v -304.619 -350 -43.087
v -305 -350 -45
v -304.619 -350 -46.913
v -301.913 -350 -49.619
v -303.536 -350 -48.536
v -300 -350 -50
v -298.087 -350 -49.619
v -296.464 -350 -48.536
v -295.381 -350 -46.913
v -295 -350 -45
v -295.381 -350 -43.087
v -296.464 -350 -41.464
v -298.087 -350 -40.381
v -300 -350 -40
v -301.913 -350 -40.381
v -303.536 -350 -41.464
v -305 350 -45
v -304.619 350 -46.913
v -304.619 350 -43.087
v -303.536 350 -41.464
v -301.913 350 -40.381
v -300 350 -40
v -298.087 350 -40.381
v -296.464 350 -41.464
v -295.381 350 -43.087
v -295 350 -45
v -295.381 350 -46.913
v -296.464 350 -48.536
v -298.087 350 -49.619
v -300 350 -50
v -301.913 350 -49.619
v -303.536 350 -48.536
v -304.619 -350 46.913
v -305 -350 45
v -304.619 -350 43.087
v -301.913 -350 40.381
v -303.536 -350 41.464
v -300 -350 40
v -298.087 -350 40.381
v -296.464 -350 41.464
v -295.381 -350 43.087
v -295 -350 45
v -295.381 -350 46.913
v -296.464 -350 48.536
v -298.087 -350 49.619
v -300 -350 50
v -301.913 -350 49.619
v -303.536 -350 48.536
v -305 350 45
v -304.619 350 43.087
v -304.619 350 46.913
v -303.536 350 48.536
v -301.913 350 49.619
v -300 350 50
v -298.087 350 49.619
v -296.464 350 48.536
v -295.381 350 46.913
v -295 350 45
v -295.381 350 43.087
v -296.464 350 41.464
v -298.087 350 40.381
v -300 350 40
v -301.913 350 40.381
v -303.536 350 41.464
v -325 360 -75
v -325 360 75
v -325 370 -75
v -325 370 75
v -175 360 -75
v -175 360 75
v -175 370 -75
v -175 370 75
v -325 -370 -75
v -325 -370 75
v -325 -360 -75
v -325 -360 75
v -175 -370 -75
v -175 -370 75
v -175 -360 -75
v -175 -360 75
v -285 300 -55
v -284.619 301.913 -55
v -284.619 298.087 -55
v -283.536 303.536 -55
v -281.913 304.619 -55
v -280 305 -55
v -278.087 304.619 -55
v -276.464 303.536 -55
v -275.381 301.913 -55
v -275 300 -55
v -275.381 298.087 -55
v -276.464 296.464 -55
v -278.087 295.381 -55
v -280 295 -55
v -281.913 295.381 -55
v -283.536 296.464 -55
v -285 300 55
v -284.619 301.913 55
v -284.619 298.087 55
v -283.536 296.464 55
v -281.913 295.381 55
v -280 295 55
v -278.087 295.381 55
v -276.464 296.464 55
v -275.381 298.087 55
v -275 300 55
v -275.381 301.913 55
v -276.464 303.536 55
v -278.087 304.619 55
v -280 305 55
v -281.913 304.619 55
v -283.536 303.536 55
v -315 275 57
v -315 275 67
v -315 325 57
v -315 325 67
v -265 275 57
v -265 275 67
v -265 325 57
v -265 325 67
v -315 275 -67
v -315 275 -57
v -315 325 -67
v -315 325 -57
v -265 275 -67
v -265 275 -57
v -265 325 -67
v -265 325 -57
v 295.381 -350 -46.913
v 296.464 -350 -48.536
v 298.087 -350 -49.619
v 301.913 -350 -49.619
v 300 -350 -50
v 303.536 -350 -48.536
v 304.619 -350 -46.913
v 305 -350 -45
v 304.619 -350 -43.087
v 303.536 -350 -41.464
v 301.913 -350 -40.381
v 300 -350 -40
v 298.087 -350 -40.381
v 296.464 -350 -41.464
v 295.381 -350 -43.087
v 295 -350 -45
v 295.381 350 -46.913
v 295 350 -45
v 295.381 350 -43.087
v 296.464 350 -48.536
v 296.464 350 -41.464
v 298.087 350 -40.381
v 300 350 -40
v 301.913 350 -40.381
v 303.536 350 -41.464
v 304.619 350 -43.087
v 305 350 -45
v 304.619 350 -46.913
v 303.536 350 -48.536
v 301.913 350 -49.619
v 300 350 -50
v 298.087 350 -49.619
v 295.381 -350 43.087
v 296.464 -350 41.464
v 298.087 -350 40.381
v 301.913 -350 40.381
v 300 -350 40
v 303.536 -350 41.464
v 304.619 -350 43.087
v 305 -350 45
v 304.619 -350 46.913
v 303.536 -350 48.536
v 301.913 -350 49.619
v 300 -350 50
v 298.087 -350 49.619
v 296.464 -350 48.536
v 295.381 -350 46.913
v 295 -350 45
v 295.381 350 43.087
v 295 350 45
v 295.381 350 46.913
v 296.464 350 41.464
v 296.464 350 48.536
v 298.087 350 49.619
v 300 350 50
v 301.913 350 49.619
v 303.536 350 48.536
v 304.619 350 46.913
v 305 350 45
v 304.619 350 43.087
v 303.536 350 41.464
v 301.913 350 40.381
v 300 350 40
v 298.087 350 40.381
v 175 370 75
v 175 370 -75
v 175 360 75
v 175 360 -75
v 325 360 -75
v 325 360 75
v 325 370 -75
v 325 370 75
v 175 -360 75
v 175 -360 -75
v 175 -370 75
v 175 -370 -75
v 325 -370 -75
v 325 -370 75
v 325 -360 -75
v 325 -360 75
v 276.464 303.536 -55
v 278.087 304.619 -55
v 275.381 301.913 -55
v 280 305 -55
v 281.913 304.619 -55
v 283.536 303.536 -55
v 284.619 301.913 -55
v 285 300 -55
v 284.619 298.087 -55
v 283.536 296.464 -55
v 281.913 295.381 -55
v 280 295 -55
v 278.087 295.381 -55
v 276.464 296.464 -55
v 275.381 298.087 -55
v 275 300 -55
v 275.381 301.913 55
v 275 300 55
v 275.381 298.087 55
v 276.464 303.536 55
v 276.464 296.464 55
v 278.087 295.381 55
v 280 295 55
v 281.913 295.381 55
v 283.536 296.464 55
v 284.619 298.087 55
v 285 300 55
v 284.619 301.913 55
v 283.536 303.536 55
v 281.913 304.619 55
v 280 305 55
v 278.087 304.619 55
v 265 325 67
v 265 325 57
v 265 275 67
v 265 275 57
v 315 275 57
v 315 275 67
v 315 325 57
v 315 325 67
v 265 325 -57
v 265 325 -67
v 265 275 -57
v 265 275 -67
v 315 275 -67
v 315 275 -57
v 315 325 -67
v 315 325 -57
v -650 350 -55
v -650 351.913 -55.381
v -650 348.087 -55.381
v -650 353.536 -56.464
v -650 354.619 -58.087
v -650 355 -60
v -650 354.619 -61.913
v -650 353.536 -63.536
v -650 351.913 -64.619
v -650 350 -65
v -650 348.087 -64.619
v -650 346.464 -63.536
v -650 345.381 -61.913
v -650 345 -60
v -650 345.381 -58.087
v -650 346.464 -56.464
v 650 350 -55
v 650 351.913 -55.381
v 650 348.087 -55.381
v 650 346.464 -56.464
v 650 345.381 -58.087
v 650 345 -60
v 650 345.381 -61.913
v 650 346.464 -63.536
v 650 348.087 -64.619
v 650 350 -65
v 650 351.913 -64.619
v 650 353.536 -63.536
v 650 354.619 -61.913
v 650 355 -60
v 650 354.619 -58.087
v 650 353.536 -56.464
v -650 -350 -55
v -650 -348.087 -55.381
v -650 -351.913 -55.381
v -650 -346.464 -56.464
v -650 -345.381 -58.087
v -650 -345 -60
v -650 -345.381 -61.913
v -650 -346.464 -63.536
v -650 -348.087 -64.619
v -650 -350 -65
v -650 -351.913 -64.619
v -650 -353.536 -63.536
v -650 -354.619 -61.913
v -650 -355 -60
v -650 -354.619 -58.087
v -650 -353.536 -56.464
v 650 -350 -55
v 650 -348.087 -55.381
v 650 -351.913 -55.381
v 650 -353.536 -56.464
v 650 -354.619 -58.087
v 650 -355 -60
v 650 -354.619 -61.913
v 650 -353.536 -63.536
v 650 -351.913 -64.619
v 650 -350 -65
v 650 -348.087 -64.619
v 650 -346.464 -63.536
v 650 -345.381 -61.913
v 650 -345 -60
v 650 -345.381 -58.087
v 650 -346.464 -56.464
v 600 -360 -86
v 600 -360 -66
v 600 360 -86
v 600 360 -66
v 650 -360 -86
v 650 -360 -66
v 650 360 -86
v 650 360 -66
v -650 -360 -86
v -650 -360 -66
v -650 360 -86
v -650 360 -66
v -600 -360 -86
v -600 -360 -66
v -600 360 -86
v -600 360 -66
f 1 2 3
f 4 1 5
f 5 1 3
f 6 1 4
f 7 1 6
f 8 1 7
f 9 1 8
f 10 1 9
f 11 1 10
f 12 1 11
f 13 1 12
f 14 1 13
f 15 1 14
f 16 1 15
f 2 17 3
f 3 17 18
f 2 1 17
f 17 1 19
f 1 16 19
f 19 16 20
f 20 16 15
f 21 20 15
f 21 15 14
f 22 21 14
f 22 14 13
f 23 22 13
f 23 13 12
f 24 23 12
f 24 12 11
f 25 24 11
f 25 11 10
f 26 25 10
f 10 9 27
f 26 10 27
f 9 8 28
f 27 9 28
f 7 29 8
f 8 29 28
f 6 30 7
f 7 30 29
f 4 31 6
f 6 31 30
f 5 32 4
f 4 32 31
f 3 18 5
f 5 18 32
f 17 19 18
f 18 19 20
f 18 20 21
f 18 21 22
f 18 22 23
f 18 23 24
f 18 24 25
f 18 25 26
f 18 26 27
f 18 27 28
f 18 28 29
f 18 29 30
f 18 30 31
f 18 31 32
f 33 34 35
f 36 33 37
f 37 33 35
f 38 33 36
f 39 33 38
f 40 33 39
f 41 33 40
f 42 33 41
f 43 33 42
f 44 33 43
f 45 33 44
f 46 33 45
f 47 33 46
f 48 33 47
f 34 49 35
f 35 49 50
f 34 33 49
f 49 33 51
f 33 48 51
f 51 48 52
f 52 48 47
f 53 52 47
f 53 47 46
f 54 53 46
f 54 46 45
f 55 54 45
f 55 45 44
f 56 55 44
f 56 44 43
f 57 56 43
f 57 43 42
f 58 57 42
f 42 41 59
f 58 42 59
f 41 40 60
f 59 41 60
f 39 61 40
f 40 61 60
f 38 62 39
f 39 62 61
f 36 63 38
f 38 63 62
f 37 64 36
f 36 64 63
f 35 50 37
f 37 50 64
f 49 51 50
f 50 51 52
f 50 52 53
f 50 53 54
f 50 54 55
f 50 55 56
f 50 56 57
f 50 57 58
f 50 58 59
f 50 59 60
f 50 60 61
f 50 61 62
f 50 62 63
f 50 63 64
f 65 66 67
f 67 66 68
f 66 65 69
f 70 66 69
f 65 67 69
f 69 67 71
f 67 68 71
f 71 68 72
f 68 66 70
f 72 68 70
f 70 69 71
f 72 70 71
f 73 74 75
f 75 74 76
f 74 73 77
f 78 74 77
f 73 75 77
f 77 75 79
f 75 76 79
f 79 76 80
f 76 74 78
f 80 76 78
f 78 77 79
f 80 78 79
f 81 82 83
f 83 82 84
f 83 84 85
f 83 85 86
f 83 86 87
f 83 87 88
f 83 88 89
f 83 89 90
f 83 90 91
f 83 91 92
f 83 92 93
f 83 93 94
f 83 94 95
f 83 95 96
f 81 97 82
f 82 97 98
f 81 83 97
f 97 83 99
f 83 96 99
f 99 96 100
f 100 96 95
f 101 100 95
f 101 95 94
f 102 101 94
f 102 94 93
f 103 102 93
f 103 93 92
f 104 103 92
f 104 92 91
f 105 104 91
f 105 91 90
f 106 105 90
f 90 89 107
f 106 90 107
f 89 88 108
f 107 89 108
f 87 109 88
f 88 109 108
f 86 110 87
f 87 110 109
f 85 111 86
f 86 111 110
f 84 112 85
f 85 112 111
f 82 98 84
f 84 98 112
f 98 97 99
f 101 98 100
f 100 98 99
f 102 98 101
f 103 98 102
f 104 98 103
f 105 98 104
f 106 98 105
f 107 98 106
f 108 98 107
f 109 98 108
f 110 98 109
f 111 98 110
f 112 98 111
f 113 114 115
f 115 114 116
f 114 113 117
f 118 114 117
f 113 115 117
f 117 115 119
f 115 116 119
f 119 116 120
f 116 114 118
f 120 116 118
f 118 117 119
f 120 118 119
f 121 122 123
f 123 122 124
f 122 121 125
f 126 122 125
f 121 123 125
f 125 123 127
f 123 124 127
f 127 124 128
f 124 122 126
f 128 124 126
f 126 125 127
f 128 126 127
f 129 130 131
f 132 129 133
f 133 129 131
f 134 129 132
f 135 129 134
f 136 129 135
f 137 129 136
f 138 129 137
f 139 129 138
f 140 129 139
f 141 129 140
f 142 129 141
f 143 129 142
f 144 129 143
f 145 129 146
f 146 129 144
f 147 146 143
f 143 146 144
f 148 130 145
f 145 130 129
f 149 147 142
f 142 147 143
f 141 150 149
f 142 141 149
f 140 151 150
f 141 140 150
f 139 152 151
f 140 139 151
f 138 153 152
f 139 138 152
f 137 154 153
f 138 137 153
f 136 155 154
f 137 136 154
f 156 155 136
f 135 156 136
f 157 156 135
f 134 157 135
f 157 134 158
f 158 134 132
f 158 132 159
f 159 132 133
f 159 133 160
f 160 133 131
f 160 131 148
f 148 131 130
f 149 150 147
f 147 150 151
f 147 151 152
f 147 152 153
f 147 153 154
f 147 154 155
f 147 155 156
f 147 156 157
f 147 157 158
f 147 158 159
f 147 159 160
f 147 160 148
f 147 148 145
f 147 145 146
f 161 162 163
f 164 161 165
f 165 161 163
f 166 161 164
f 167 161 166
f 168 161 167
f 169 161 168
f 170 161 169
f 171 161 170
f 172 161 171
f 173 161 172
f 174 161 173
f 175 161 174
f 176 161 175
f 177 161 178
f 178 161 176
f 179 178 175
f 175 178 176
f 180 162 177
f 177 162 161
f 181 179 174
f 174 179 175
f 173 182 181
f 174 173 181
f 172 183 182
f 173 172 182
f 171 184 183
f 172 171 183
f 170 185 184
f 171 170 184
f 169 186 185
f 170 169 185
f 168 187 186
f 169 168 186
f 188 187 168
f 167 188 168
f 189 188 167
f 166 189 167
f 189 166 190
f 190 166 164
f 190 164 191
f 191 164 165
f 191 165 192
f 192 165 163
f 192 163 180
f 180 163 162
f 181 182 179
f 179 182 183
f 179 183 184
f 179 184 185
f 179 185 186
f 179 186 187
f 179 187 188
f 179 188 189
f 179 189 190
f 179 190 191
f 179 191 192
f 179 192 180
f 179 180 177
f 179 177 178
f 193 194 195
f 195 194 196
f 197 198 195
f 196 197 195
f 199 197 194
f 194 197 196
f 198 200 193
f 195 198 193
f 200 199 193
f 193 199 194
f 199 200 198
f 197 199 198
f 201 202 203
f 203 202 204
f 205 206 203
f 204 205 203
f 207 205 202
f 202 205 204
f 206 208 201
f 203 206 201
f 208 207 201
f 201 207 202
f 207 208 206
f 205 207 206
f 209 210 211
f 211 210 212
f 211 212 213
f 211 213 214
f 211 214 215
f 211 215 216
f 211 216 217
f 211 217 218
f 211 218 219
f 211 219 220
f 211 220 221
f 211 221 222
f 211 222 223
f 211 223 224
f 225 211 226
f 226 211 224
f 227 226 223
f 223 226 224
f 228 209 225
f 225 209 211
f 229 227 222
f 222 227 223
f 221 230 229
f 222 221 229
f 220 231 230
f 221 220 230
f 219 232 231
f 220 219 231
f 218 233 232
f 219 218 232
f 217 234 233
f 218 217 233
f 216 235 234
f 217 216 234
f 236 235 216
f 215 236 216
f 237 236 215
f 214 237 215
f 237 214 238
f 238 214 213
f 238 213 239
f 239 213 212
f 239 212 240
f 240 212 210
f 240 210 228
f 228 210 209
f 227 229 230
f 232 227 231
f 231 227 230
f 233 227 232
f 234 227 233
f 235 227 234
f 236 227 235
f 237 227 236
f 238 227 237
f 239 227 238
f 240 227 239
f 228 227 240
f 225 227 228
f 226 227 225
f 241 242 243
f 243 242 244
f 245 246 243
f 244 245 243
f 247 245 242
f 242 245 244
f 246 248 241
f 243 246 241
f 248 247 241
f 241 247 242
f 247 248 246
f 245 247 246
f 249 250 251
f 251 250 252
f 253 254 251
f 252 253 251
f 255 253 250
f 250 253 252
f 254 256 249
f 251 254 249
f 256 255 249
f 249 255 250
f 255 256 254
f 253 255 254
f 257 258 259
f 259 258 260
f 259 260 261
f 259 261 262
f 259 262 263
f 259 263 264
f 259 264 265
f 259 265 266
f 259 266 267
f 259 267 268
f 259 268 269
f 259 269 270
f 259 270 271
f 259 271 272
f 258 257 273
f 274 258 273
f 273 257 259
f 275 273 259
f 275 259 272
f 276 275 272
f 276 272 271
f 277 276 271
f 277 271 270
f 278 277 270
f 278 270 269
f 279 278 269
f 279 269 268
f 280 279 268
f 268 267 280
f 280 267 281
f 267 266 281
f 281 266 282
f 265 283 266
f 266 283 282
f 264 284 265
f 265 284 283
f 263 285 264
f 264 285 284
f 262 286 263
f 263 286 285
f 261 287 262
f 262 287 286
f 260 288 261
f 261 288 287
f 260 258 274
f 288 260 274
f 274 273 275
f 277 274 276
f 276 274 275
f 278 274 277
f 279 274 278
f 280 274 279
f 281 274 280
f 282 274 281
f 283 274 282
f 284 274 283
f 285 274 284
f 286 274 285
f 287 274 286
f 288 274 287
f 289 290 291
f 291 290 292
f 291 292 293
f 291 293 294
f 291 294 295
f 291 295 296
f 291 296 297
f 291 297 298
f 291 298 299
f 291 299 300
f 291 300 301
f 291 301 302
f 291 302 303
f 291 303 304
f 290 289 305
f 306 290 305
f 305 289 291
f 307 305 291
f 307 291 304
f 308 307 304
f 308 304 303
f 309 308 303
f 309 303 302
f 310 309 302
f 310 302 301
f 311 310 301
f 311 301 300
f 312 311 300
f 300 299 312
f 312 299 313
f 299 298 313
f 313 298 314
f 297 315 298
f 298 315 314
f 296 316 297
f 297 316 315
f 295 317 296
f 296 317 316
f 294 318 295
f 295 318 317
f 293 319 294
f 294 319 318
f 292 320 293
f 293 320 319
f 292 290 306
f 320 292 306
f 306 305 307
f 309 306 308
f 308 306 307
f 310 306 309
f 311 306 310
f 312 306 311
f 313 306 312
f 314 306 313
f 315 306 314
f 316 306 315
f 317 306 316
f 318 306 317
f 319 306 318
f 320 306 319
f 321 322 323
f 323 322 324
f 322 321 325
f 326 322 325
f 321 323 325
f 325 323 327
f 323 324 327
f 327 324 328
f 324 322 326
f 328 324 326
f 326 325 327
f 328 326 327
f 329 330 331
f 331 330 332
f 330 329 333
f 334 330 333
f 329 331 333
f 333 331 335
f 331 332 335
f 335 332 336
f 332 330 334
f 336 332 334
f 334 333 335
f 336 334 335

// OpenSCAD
xRailDiameter = 10;
xRailLength = 700;

yRailDiameter = 10;
yRailLength = 110;

zRailDiameter = 10;
zRailLength = 1300;

endBlockLength = 720;
endBlockWidth = 50;
endBlockHeight = 20;

module exampleFoamSize() {
	%cube([1200, 600, 60], center = true);
}

module xRailEndPlate() {
	translate([50,365,0]) {
			cube([150,10,150], center = true);
	}
	translate([50,-365,0]) {
			cube([150,10,150], center = true);
	}
}

module yRailEndPlate() {
	translate([10,300,62]) {
			cube([50,50,10], center = true);
	}
	translate([10,300,-62]) {
			cube([50,50,10], center = true);
	}
}

module xRail() {
	translate([-300,0,0]) {
		rotate(90, [1,0,0]) {
			translate([0,-45,0]) {
				cylinder(r = xRailDiameter / 2, h = xRailLength, center = true);
			}
			translate([0,45,0]) {
				cylinder(r = xRailDiameter / 2, h = xRailLength, center = true);
			}
		}
		xRailEndPlate();
		yRail();
	}
}

module yRail() {
	rotate(90, [0,0,1]) {
		translate([300,-20,0]) {
			cylinder(r = yRailDiameter / 2, h = yRailLength, center = true);
		}
	}
	yRailEndPlate();
}

module zRail() {
	rotate(90, [0,1,0]) {
		translate([60,350,0]) {
			cylinder(r = zRailDiameter / 2, h = zRailLength, center = true);
		}
	translate([60,-350,0]) {
			cylinder(r = zRailDiameter / 2, h = zRailLength, center = true);
		}
	}
}

module endBlocks() {
	translate([650-endBlockWidth/2,0,-76]) {
			cube([endBlockWidth, endBlockLength, endBlockHeight], center = true);
		}
	translate([-650+endBlockWidth/2,0,-76]) {
			cube([endBlockWidth, endBlockLength, endBlockHeight], center = true);
	}
}


module assembly() {
	xRail();
	mirror([1,0,0]) xRail();
	zRail();
	endBlocks();
}

exampleFoamSize();
assembly();
